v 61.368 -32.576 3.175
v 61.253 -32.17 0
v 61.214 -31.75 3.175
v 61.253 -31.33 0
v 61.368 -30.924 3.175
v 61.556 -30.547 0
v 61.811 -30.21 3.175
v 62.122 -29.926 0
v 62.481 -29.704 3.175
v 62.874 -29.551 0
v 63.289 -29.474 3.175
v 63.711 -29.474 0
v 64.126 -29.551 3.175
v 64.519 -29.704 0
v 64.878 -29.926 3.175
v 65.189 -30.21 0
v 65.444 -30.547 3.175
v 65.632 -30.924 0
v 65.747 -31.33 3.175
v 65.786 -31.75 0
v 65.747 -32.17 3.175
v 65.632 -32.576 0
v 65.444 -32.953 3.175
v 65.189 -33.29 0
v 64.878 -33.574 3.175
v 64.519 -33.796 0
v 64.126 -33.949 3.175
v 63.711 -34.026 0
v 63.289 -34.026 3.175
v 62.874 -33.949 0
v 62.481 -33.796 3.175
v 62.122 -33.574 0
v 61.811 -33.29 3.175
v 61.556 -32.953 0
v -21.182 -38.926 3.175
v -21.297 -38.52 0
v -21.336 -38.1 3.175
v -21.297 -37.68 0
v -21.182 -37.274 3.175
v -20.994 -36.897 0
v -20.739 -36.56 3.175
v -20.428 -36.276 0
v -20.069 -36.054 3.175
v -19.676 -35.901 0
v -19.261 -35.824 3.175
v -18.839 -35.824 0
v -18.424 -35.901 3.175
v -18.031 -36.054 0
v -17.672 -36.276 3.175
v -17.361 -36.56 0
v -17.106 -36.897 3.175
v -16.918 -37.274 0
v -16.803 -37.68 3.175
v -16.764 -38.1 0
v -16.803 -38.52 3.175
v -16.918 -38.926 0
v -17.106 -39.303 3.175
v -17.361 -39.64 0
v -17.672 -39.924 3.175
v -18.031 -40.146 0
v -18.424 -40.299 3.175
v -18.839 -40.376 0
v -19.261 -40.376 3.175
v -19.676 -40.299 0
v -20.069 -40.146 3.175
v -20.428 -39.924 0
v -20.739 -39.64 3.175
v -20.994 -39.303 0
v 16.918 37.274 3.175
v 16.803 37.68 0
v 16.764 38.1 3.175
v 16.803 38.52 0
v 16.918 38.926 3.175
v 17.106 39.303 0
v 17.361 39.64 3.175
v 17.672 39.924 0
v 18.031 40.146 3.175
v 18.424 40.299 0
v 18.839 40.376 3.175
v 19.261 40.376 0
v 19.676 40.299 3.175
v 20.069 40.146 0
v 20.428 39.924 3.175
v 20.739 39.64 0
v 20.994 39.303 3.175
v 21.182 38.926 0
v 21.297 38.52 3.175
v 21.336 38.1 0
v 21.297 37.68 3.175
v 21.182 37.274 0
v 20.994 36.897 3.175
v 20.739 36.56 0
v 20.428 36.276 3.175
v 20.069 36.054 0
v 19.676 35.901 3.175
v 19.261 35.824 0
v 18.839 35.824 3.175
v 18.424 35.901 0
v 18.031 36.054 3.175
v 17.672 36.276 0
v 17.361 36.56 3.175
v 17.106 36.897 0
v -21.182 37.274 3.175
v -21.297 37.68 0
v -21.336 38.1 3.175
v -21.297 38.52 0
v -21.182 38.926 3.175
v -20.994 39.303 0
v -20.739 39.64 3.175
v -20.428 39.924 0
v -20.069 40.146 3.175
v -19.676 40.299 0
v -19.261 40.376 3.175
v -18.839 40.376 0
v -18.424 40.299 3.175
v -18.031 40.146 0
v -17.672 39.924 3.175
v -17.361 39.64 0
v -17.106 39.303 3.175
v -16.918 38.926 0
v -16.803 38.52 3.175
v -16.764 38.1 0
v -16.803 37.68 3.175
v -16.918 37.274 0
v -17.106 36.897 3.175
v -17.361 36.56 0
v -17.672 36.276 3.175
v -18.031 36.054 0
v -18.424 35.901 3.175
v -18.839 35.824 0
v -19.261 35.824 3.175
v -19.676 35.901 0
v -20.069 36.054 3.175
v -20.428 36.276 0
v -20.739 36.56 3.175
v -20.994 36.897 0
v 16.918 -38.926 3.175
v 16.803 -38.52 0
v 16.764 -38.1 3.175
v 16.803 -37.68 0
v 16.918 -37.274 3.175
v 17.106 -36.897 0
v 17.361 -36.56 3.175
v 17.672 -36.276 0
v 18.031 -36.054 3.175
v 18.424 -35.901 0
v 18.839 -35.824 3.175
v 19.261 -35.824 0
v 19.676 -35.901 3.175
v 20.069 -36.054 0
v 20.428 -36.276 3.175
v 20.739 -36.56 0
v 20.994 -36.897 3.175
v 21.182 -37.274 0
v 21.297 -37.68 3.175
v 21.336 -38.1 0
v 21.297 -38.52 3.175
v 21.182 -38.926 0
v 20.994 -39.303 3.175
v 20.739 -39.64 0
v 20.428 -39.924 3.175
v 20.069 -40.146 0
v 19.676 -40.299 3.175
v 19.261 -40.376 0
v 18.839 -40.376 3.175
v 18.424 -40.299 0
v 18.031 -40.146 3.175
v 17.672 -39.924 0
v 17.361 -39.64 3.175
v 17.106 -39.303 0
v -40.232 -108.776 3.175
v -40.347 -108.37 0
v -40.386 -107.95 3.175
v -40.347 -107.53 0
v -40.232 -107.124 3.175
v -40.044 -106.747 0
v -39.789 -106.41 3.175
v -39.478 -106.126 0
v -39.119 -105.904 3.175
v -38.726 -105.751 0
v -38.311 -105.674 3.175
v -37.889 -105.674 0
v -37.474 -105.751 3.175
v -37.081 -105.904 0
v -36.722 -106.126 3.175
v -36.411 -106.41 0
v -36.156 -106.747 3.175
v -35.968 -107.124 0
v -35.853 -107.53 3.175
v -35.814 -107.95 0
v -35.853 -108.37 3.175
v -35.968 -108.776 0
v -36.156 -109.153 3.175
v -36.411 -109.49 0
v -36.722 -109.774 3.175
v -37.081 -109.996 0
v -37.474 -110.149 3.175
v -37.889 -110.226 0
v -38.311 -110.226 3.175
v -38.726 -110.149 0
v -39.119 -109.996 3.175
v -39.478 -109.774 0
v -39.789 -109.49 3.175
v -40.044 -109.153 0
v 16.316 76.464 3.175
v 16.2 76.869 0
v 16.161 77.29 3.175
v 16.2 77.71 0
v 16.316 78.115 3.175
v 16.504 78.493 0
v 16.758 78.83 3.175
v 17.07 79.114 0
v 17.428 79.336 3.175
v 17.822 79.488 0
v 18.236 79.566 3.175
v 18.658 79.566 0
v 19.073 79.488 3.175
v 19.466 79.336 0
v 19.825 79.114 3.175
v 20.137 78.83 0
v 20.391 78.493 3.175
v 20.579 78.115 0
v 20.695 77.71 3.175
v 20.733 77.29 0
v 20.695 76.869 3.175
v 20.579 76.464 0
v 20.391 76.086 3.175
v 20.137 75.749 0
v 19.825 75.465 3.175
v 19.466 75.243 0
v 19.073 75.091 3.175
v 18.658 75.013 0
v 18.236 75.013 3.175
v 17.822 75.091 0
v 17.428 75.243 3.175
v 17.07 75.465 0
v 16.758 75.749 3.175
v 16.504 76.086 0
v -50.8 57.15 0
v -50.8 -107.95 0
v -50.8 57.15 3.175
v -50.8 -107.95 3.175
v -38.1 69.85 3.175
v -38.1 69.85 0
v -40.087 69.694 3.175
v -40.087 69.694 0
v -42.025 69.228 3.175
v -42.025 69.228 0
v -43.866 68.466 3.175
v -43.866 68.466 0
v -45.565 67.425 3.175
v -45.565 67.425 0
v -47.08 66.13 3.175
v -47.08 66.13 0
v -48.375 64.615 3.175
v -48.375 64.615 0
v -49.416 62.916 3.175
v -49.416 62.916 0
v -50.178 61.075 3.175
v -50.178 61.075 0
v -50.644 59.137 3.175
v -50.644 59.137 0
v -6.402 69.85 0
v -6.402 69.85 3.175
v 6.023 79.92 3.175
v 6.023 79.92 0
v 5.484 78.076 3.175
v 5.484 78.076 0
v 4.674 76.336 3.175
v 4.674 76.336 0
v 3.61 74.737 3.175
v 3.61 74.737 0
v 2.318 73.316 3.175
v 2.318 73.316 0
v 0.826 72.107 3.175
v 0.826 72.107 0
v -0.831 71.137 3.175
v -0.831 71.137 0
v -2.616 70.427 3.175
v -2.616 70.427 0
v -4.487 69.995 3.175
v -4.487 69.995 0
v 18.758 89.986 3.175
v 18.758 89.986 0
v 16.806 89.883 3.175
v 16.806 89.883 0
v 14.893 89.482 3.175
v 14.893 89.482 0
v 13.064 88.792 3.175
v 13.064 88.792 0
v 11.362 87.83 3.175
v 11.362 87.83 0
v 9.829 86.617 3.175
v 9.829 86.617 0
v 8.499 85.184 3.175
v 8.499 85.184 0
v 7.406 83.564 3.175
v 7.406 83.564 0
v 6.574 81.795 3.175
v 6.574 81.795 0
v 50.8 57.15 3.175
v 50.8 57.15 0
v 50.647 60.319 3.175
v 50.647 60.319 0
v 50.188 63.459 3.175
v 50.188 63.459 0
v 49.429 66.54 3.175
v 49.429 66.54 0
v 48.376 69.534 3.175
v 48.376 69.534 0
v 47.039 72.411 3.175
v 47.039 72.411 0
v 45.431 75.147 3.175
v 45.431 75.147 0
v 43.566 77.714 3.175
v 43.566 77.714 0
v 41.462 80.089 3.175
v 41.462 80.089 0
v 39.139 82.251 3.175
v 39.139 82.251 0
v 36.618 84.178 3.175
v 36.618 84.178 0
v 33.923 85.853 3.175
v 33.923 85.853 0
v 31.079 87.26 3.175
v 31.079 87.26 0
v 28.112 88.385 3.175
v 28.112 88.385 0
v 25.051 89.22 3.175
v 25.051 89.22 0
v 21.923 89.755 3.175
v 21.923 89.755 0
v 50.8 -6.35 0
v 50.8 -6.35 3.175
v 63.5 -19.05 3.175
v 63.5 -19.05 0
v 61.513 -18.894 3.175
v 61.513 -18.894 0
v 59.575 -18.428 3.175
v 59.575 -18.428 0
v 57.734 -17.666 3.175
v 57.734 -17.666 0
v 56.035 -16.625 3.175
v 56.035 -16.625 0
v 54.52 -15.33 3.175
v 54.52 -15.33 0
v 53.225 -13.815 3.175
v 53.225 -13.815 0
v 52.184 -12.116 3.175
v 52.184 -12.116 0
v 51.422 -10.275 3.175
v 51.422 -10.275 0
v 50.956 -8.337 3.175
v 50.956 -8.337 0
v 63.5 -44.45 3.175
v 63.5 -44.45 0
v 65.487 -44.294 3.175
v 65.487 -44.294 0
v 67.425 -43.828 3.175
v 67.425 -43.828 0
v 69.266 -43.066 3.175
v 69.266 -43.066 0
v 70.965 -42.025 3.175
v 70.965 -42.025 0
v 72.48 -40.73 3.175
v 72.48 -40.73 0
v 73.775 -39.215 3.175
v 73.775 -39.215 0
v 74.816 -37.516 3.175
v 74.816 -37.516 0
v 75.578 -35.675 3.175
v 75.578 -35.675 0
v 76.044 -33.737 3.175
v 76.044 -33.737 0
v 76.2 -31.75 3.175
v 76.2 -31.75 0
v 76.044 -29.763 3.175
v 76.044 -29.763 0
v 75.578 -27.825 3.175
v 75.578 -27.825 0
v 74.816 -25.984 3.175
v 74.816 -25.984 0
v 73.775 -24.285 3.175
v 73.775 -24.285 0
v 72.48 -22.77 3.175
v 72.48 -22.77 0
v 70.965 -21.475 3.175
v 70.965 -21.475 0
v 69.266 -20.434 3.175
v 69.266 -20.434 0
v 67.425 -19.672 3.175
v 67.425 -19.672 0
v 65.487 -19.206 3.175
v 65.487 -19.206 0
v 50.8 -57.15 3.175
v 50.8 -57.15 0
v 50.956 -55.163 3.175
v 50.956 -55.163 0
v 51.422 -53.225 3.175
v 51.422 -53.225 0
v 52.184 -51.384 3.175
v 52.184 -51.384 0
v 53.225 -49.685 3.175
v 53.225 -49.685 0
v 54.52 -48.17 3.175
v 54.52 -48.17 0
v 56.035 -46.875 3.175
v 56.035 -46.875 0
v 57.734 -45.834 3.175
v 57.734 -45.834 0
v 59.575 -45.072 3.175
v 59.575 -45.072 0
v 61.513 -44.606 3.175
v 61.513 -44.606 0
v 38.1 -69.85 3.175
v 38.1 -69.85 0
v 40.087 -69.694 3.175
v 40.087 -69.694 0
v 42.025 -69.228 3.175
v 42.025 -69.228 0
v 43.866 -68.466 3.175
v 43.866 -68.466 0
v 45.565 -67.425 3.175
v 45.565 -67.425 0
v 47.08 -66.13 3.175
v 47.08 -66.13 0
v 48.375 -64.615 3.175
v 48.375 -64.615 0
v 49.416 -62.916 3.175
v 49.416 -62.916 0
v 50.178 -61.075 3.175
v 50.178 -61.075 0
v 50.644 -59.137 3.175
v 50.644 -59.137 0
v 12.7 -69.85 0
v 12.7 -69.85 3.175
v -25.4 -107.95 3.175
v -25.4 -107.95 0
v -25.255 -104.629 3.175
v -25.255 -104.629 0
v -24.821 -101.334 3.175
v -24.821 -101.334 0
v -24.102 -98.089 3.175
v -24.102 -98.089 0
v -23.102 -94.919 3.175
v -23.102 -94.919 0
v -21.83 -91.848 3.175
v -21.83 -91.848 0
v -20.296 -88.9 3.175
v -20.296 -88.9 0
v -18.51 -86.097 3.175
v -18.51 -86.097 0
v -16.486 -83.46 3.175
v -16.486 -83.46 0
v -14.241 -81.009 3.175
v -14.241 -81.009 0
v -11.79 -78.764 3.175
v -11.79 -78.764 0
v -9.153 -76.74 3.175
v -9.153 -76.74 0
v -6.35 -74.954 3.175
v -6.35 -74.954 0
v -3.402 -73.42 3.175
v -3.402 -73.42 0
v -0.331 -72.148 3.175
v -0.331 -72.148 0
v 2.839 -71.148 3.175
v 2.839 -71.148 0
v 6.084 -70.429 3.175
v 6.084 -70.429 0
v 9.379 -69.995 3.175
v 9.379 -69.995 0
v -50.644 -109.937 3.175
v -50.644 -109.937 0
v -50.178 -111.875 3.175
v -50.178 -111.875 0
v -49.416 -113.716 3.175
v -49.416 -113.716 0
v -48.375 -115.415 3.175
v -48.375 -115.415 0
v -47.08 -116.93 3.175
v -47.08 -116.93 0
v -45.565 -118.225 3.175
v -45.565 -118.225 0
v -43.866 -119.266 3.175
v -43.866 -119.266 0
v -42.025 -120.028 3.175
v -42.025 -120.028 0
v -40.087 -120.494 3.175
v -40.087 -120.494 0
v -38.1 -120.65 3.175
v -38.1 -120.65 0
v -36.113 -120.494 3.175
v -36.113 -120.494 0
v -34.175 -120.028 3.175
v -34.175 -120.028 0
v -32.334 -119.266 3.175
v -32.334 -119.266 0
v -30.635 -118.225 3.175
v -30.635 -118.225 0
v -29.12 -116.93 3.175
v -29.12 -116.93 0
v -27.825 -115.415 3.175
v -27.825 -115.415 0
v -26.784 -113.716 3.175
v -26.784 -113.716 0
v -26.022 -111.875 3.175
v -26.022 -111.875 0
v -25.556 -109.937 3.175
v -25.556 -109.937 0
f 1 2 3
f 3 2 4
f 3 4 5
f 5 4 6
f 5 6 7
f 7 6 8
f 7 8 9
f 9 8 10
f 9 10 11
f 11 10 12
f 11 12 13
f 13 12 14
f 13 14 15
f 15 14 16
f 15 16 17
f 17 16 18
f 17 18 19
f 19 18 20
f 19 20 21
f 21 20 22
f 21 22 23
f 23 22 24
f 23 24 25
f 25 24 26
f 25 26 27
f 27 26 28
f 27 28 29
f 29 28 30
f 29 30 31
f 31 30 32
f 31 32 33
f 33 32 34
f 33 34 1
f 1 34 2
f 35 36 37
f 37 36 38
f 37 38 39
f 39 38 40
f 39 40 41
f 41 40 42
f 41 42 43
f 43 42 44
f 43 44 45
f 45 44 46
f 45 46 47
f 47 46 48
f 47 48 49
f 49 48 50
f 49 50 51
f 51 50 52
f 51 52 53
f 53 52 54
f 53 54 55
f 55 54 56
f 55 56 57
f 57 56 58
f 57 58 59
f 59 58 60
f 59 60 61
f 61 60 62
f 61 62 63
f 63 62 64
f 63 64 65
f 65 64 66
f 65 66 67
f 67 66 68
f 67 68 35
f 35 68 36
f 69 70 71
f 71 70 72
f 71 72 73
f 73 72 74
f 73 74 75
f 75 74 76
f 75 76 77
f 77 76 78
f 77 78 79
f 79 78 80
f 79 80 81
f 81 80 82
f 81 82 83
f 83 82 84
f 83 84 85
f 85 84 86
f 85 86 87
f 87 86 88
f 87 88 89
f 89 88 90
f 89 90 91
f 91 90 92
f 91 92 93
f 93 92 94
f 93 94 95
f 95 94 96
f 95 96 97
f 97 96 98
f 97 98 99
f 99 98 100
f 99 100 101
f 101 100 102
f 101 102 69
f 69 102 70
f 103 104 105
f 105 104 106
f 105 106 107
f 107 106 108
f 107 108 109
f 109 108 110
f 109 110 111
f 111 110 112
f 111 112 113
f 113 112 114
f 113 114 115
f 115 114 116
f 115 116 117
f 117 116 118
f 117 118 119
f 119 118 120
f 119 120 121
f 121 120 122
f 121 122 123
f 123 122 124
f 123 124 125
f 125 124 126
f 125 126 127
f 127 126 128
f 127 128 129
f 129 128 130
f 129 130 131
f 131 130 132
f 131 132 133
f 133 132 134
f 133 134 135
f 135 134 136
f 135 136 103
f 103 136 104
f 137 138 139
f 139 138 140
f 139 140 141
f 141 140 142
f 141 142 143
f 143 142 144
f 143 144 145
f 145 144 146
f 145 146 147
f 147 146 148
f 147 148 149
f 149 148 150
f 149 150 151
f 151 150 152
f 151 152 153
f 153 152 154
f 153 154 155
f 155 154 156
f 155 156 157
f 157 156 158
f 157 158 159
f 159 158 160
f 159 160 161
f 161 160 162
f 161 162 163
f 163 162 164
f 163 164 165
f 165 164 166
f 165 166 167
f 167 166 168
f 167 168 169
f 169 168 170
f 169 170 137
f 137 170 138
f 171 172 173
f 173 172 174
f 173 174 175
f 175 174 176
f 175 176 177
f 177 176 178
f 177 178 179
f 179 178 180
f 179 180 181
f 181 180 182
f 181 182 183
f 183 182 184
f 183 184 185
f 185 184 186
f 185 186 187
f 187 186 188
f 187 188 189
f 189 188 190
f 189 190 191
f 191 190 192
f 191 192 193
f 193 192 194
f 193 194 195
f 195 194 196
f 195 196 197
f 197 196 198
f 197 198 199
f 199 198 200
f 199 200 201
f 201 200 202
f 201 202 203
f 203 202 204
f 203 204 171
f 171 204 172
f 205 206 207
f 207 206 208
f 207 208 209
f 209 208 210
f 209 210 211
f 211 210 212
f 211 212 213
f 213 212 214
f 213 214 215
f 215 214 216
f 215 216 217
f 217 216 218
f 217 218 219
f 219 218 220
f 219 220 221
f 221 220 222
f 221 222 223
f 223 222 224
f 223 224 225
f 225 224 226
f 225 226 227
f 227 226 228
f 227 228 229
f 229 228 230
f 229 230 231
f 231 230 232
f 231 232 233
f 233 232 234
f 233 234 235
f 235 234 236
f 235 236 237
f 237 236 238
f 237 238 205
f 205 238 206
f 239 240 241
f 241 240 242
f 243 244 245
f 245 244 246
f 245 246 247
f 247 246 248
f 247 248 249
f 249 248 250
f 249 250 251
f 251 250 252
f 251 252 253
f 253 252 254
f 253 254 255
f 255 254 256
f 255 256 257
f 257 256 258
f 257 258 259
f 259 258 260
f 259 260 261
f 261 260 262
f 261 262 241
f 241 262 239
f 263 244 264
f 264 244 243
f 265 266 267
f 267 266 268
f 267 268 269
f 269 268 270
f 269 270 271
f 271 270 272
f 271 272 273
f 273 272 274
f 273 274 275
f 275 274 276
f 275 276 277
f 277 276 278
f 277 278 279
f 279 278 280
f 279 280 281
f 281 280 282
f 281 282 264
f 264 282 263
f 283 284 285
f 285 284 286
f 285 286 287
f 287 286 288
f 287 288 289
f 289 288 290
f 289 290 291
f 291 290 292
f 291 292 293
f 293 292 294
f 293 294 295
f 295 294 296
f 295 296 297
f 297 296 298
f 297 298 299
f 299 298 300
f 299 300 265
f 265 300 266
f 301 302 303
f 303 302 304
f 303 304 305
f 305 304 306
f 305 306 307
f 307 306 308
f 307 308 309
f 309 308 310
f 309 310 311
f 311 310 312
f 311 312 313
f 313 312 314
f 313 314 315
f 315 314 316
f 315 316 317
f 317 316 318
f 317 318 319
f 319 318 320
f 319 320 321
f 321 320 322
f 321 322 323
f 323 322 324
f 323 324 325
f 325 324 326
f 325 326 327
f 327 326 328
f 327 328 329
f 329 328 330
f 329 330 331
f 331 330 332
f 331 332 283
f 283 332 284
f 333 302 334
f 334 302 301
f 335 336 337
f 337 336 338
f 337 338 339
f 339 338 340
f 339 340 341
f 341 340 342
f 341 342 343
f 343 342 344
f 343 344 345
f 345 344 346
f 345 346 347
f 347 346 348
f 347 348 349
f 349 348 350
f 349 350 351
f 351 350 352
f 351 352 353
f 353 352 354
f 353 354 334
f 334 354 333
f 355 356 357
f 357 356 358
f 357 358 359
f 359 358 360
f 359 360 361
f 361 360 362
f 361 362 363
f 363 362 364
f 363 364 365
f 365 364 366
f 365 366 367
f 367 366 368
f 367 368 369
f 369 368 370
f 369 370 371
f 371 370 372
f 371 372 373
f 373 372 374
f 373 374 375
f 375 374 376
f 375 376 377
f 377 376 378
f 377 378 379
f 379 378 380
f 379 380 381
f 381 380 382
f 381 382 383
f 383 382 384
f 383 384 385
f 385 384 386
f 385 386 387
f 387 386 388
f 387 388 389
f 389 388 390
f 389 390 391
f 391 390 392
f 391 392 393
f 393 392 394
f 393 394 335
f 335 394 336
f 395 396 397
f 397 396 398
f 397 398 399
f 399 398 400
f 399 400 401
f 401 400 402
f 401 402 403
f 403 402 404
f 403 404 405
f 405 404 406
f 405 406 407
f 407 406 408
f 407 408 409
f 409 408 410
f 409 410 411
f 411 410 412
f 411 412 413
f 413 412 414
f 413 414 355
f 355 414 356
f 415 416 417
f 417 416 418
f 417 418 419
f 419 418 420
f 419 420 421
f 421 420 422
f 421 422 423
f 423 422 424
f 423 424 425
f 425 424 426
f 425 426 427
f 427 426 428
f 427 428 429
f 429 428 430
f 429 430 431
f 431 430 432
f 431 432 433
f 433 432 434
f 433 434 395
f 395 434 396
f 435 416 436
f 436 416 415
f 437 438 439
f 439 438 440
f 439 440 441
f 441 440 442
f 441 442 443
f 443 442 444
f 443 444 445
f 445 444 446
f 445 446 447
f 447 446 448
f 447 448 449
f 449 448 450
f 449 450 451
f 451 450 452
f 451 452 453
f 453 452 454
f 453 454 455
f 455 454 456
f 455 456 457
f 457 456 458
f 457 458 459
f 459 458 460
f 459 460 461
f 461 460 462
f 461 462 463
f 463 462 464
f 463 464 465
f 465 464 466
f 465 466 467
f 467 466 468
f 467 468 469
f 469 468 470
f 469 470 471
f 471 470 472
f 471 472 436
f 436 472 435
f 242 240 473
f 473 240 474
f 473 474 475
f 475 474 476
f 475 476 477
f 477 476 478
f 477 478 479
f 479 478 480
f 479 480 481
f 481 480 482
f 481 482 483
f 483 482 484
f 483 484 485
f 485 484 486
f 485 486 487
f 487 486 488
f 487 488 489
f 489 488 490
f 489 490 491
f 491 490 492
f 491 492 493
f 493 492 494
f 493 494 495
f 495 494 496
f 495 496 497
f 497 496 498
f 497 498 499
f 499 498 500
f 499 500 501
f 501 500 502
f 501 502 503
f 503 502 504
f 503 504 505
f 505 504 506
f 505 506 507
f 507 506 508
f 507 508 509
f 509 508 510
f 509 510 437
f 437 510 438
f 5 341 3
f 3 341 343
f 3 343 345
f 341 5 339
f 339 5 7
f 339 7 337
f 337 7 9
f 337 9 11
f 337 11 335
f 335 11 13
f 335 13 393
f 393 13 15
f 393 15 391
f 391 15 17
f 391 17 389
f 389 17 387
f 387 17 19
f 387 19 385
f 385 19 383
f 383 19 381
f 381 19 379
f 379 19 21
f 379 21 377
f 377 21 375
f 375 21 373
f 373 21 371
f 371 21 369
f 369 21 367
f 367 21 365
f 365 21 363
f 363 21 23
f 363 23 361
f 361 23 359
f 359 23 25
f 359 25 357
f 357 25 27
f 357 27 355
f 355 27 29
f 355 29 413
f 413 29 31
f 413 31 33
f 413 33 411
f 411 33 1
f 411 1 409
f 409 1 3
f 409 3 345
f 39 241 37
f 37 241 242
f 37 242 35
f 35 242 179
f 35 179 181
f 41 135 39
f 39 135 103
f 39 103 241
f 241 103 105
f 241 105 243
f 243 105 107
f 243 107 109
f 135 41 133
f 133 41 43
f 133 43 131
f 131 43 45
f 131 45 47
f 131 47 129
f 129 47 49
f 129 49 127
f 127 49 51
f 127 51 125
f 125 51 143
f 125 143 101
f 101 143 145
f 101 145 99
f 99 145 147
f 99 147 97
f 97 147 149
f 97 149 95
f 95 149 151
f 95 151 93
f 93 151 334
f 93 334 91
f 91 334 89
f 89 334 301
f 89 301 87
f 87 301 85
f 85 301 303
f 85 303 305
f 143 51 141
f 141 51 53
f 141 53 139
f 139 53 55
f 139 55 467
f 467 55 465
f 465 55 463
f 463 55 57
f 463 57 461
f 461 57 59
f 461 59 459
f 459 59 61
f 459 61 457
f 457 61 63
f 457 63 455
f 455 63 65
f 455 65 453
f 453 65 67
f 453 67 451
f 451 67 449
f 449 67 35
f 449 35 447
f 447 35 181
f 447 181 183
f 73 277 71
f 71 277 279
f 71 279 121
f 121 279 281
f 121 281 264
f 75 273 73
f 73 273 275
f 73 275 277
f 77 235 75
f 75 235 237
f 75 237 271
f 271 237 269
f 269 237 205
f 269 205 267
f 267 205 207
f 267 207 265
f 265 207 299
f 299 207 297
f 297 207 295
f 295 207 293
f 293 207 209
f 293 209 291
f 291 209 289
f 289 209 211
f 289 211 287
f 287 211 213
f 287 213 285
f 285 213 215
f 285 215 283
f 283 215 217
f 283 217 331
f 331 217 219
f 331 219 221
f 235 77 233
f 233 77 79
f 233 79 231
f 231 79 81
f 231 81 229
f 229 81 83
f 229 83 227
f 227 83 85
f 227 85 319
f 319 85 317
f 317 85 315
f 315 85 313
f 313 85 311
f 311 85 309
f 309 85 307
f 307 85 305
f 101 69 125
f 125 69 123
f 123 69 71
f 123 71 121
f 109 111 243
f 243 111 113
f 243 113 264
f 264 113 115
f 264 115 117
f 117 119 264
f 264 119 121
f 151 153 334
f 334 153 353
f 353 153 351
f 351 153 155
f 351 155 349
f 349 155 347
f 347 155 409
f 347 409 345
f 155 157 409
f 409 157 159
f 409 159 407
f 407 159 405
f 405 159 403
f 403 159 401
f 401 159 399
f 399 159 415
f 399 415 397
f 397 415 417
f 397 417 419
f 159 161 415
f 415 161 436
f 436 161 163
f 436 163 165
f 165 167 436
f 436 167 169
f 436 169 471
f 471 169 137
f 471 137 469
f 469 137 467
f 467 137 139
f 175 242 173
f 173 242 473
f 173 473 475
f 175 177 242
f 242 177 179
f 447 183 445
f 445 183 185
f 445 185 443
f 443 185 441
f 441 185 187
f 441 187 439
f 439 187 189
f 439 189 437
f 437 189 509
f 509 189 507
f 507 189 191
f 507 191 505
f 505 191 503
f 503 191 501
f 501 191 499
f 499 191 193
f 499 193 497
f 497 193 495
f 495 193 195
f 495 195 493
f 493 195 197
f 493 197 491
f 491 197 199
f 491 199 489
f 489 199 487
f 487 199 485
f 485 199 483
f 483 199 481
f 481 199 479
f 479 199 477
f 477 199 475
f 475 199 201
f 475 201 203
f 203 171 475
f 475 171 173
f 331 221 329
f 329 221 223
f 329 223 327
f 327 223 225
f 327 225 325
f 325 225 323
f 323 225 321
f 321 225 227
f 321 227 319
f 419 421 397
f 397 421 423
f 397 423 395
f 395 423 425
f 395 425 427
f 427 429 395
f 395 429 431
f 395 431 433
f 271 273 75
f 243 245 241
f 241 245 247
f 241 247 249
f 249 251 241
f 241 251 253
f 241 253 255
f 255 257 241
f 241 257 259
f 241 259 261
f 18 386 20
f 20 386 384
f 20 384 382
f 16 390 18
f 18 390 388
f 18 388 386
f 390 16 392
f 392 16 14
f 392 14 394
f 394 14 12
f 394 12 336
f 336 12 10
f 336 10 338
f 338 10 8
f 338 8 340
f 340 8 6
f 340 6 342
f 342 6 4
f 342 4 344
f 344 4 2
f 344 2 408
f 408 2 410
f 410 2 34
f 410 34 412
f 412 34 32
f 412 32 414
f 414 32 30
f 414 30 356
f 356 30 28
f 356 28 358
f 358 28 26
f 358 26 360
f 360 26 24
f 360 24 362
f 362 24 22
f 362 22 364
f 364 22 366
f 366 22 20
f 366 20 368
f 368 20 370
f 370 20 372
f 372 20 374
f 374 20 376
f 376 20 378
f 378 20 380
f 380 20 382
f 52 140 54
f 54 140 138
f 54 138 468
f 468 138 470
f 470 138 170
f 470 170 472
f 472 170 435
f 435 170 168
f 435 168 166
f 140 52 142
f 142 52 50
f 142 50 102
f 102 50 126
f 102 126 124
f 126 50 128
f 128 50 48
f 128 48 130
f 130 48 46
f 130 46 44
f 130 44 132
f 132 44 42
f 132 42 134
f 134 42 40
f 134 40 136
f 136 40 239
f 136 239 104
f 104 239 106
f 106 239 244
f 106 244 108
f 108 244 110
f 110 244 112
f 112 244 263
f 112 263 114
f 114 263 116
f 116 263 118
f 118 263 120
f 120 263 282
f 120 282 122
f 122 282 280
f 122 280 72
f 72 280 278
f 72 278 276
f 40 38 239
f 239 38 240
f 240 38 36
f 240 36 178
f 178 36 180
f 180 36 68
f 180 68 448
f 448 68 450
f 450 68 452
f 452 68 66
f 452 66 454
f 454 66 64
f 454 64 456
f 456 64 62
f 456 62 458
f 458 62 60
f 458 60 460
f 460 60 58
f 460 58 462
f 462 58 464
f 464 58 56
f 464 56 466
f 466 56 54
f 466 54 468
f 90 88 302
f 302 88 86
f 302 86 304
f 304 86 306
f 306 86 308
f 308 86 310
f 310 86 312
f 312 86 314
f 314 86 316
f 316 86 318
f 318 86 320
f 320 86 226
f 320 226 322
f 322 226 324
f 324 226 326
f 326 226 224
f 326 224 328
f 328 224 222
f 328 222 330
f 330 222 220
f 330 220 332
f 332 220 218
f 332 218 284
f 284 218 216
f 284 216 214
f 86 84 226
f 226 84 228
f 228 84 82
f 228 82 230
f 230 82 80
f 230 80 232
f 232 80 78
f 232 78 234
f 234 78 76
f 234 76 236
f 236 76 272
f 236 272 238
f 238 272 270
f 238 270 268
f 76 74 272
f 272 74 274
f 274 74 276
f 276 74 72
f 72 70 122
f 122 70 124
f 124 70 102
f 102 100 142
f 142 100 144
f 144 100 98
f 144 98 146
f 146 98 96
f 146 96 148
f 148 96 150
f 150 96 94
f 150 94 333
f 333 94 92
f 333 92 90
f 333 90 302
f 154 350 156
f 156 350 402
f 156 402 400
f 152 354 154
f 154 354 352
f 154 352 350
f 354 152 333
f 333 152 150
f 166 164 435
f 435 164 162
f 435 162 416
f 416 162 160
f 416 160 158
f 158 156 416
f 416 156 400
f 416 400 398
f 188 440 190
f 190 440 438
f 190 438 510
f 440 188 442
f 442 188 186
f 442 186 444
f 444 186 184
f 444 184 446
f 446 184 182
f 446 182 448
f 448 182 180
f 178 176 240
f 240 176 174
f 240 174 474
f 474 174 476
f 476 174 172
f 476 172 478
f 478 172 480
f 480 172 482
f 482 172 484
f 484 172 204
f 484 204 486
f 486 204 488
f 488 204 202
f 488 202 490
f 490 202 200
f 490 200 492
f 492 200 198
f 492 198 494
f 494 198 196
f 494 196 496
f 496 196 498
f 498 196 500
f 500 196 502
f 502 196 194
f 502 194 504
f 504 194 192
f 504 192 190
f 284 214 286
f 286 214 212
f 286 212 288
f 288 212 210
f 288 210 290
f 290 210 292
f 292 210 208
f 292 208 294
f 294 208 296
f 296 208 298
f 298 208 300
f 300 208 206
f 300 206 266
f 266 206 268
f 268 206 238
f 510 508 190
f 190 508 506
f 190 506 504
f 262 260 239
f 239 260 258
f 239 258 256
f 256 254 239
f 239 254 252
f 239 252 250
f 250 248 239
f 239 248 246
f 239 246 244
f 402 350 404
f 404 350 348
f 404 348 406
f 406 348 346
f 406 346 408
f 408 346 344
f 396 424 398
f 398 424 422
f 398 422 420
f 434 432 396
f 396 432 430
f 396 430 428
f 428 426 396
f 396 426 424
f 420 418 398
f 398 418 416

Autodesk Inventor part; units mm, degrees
ref_plane "YZ Plane" through (0, 0, 0) normal (1, 0, 0) x (0, 1, 0)
ref_plane "XZ Plane" through (0, 0, 0) normal (0, 1, 0) x (-1, 0, 0)
ref_plane "XY Plane" through (0, 0, 0) normal (0, 0, 1) x (1, 0, 0)
sketch "Sketch1" plane through (0, 0, 0) normal (0, 0, 1) x (1, 0, 0)
  line L0 (19.05, 38.1) -> (-19.05, 38.1) construction
  line L1 (-19.05, 38.1) -> (-19.05, -38.1) construction
  line L2 (-19.05, -38.1) -> (19.05, -38.1) construction
  line L3 (19.05, -38.1) -> (19.05, 38.1) construction
  line L4 (19.05, 38.1) -> (-19.05, -38.1) construction
  line L5 (-19.05, 38.1) -> (19.05, -38.1) construction
  line L6 (-50.8, -69.85) -> (38.1, -69.85)
  line L7 (50.8, -57.15) -> (50.8, 57.15)
  line L8 (38.1, 69.85) -> (-38.1, 69.85)
  line L9 (-50.8, 57.15) -> (-50.8, -69.85)
  line L10 (-50.8, -69.85) -> (50.8, 69.85) construction
  line L11 (50.8, -69.85) -> (-50.8, 69.85) construction
  circle A0 centre (18.4474, 77.2895) radius 12.7
  circle A1 centre (63.5, -31.75) radius 12.7
  circle A2 centre (-38.1, -107.95) radius 12.7
  arc A3 (-6.4019, 69.85) -> (6.0228, 79.9198) centre (-6.4019, 82.55) ccw
  arc A4 (50.8, -6.35) -> (63.5, -19.05) centre (63.5, -6.35) ccw
  arc A5 (63.5, -44.45) -> (50.8, -57.15) centre (63.5, -57.15) ccw
  arc A6 (12.7, -69.85) -> (-25.4, -107.95) centre (12.7, -107.95) ccw
  line L12 (-50.8, -107.95) -> (-50.8, -69.85)
  arc A7 (38.1, -69.85) -> (50.8, -57.15) centre (38.1, -57.15) ccw
  arc A8 (50.8, 57.15) -> (38.1, 69.85) centre (38.1, 57.15) ccw
  arc A9 (-38.1, 69.85) -> (-50.8, 57.15) centre (-38.1, 57.15) ccw
  arc A10 (19.9641, 75.8806) -> (17.0385, 78.8062) centre (18.4474, 77.2895) ccw
  arc A11 (50.8, 57.15) -> (18.7582, 89.9857) centre (17.9544, 57.15) ccw
  point P0 (0, 0)
  point P1 (-38.1, -69.85)
  point P2 (-50.8, -78.4346)
  point P3 (50.8, -31.75)
  point P4 (8.1546, 69.85)
  point P5 (28.7403, 69.85)
  dimension "d0" = 38.1
  dimension "d1" = 76.2
  dimension "d2" = 31.75
  dimension "d3" = 31.75
  dimension "d13" = 25.4
  dimension "d20" = 12.7
  dimension "d21" = 76.2
  dimension "d22" = 38.1
  dimension "d23" = 32.8456
extrude "Extrusion1" add sketch "Sketch1" along normal blind 3.175
hole "Hole1" at (-19.05, 38.1, 0) at (19.05, 38.1, 0) at (19.05, -38.1, 0) at (-19.05, -38.1, 0) at (-38.1, -107.95, 0) at (63.5, -31.75, 0) at (18.4474, 77.2895, 0) direction (0, 0, 1) diameter 4.572 end through all
properties part number "Brain Mount"
